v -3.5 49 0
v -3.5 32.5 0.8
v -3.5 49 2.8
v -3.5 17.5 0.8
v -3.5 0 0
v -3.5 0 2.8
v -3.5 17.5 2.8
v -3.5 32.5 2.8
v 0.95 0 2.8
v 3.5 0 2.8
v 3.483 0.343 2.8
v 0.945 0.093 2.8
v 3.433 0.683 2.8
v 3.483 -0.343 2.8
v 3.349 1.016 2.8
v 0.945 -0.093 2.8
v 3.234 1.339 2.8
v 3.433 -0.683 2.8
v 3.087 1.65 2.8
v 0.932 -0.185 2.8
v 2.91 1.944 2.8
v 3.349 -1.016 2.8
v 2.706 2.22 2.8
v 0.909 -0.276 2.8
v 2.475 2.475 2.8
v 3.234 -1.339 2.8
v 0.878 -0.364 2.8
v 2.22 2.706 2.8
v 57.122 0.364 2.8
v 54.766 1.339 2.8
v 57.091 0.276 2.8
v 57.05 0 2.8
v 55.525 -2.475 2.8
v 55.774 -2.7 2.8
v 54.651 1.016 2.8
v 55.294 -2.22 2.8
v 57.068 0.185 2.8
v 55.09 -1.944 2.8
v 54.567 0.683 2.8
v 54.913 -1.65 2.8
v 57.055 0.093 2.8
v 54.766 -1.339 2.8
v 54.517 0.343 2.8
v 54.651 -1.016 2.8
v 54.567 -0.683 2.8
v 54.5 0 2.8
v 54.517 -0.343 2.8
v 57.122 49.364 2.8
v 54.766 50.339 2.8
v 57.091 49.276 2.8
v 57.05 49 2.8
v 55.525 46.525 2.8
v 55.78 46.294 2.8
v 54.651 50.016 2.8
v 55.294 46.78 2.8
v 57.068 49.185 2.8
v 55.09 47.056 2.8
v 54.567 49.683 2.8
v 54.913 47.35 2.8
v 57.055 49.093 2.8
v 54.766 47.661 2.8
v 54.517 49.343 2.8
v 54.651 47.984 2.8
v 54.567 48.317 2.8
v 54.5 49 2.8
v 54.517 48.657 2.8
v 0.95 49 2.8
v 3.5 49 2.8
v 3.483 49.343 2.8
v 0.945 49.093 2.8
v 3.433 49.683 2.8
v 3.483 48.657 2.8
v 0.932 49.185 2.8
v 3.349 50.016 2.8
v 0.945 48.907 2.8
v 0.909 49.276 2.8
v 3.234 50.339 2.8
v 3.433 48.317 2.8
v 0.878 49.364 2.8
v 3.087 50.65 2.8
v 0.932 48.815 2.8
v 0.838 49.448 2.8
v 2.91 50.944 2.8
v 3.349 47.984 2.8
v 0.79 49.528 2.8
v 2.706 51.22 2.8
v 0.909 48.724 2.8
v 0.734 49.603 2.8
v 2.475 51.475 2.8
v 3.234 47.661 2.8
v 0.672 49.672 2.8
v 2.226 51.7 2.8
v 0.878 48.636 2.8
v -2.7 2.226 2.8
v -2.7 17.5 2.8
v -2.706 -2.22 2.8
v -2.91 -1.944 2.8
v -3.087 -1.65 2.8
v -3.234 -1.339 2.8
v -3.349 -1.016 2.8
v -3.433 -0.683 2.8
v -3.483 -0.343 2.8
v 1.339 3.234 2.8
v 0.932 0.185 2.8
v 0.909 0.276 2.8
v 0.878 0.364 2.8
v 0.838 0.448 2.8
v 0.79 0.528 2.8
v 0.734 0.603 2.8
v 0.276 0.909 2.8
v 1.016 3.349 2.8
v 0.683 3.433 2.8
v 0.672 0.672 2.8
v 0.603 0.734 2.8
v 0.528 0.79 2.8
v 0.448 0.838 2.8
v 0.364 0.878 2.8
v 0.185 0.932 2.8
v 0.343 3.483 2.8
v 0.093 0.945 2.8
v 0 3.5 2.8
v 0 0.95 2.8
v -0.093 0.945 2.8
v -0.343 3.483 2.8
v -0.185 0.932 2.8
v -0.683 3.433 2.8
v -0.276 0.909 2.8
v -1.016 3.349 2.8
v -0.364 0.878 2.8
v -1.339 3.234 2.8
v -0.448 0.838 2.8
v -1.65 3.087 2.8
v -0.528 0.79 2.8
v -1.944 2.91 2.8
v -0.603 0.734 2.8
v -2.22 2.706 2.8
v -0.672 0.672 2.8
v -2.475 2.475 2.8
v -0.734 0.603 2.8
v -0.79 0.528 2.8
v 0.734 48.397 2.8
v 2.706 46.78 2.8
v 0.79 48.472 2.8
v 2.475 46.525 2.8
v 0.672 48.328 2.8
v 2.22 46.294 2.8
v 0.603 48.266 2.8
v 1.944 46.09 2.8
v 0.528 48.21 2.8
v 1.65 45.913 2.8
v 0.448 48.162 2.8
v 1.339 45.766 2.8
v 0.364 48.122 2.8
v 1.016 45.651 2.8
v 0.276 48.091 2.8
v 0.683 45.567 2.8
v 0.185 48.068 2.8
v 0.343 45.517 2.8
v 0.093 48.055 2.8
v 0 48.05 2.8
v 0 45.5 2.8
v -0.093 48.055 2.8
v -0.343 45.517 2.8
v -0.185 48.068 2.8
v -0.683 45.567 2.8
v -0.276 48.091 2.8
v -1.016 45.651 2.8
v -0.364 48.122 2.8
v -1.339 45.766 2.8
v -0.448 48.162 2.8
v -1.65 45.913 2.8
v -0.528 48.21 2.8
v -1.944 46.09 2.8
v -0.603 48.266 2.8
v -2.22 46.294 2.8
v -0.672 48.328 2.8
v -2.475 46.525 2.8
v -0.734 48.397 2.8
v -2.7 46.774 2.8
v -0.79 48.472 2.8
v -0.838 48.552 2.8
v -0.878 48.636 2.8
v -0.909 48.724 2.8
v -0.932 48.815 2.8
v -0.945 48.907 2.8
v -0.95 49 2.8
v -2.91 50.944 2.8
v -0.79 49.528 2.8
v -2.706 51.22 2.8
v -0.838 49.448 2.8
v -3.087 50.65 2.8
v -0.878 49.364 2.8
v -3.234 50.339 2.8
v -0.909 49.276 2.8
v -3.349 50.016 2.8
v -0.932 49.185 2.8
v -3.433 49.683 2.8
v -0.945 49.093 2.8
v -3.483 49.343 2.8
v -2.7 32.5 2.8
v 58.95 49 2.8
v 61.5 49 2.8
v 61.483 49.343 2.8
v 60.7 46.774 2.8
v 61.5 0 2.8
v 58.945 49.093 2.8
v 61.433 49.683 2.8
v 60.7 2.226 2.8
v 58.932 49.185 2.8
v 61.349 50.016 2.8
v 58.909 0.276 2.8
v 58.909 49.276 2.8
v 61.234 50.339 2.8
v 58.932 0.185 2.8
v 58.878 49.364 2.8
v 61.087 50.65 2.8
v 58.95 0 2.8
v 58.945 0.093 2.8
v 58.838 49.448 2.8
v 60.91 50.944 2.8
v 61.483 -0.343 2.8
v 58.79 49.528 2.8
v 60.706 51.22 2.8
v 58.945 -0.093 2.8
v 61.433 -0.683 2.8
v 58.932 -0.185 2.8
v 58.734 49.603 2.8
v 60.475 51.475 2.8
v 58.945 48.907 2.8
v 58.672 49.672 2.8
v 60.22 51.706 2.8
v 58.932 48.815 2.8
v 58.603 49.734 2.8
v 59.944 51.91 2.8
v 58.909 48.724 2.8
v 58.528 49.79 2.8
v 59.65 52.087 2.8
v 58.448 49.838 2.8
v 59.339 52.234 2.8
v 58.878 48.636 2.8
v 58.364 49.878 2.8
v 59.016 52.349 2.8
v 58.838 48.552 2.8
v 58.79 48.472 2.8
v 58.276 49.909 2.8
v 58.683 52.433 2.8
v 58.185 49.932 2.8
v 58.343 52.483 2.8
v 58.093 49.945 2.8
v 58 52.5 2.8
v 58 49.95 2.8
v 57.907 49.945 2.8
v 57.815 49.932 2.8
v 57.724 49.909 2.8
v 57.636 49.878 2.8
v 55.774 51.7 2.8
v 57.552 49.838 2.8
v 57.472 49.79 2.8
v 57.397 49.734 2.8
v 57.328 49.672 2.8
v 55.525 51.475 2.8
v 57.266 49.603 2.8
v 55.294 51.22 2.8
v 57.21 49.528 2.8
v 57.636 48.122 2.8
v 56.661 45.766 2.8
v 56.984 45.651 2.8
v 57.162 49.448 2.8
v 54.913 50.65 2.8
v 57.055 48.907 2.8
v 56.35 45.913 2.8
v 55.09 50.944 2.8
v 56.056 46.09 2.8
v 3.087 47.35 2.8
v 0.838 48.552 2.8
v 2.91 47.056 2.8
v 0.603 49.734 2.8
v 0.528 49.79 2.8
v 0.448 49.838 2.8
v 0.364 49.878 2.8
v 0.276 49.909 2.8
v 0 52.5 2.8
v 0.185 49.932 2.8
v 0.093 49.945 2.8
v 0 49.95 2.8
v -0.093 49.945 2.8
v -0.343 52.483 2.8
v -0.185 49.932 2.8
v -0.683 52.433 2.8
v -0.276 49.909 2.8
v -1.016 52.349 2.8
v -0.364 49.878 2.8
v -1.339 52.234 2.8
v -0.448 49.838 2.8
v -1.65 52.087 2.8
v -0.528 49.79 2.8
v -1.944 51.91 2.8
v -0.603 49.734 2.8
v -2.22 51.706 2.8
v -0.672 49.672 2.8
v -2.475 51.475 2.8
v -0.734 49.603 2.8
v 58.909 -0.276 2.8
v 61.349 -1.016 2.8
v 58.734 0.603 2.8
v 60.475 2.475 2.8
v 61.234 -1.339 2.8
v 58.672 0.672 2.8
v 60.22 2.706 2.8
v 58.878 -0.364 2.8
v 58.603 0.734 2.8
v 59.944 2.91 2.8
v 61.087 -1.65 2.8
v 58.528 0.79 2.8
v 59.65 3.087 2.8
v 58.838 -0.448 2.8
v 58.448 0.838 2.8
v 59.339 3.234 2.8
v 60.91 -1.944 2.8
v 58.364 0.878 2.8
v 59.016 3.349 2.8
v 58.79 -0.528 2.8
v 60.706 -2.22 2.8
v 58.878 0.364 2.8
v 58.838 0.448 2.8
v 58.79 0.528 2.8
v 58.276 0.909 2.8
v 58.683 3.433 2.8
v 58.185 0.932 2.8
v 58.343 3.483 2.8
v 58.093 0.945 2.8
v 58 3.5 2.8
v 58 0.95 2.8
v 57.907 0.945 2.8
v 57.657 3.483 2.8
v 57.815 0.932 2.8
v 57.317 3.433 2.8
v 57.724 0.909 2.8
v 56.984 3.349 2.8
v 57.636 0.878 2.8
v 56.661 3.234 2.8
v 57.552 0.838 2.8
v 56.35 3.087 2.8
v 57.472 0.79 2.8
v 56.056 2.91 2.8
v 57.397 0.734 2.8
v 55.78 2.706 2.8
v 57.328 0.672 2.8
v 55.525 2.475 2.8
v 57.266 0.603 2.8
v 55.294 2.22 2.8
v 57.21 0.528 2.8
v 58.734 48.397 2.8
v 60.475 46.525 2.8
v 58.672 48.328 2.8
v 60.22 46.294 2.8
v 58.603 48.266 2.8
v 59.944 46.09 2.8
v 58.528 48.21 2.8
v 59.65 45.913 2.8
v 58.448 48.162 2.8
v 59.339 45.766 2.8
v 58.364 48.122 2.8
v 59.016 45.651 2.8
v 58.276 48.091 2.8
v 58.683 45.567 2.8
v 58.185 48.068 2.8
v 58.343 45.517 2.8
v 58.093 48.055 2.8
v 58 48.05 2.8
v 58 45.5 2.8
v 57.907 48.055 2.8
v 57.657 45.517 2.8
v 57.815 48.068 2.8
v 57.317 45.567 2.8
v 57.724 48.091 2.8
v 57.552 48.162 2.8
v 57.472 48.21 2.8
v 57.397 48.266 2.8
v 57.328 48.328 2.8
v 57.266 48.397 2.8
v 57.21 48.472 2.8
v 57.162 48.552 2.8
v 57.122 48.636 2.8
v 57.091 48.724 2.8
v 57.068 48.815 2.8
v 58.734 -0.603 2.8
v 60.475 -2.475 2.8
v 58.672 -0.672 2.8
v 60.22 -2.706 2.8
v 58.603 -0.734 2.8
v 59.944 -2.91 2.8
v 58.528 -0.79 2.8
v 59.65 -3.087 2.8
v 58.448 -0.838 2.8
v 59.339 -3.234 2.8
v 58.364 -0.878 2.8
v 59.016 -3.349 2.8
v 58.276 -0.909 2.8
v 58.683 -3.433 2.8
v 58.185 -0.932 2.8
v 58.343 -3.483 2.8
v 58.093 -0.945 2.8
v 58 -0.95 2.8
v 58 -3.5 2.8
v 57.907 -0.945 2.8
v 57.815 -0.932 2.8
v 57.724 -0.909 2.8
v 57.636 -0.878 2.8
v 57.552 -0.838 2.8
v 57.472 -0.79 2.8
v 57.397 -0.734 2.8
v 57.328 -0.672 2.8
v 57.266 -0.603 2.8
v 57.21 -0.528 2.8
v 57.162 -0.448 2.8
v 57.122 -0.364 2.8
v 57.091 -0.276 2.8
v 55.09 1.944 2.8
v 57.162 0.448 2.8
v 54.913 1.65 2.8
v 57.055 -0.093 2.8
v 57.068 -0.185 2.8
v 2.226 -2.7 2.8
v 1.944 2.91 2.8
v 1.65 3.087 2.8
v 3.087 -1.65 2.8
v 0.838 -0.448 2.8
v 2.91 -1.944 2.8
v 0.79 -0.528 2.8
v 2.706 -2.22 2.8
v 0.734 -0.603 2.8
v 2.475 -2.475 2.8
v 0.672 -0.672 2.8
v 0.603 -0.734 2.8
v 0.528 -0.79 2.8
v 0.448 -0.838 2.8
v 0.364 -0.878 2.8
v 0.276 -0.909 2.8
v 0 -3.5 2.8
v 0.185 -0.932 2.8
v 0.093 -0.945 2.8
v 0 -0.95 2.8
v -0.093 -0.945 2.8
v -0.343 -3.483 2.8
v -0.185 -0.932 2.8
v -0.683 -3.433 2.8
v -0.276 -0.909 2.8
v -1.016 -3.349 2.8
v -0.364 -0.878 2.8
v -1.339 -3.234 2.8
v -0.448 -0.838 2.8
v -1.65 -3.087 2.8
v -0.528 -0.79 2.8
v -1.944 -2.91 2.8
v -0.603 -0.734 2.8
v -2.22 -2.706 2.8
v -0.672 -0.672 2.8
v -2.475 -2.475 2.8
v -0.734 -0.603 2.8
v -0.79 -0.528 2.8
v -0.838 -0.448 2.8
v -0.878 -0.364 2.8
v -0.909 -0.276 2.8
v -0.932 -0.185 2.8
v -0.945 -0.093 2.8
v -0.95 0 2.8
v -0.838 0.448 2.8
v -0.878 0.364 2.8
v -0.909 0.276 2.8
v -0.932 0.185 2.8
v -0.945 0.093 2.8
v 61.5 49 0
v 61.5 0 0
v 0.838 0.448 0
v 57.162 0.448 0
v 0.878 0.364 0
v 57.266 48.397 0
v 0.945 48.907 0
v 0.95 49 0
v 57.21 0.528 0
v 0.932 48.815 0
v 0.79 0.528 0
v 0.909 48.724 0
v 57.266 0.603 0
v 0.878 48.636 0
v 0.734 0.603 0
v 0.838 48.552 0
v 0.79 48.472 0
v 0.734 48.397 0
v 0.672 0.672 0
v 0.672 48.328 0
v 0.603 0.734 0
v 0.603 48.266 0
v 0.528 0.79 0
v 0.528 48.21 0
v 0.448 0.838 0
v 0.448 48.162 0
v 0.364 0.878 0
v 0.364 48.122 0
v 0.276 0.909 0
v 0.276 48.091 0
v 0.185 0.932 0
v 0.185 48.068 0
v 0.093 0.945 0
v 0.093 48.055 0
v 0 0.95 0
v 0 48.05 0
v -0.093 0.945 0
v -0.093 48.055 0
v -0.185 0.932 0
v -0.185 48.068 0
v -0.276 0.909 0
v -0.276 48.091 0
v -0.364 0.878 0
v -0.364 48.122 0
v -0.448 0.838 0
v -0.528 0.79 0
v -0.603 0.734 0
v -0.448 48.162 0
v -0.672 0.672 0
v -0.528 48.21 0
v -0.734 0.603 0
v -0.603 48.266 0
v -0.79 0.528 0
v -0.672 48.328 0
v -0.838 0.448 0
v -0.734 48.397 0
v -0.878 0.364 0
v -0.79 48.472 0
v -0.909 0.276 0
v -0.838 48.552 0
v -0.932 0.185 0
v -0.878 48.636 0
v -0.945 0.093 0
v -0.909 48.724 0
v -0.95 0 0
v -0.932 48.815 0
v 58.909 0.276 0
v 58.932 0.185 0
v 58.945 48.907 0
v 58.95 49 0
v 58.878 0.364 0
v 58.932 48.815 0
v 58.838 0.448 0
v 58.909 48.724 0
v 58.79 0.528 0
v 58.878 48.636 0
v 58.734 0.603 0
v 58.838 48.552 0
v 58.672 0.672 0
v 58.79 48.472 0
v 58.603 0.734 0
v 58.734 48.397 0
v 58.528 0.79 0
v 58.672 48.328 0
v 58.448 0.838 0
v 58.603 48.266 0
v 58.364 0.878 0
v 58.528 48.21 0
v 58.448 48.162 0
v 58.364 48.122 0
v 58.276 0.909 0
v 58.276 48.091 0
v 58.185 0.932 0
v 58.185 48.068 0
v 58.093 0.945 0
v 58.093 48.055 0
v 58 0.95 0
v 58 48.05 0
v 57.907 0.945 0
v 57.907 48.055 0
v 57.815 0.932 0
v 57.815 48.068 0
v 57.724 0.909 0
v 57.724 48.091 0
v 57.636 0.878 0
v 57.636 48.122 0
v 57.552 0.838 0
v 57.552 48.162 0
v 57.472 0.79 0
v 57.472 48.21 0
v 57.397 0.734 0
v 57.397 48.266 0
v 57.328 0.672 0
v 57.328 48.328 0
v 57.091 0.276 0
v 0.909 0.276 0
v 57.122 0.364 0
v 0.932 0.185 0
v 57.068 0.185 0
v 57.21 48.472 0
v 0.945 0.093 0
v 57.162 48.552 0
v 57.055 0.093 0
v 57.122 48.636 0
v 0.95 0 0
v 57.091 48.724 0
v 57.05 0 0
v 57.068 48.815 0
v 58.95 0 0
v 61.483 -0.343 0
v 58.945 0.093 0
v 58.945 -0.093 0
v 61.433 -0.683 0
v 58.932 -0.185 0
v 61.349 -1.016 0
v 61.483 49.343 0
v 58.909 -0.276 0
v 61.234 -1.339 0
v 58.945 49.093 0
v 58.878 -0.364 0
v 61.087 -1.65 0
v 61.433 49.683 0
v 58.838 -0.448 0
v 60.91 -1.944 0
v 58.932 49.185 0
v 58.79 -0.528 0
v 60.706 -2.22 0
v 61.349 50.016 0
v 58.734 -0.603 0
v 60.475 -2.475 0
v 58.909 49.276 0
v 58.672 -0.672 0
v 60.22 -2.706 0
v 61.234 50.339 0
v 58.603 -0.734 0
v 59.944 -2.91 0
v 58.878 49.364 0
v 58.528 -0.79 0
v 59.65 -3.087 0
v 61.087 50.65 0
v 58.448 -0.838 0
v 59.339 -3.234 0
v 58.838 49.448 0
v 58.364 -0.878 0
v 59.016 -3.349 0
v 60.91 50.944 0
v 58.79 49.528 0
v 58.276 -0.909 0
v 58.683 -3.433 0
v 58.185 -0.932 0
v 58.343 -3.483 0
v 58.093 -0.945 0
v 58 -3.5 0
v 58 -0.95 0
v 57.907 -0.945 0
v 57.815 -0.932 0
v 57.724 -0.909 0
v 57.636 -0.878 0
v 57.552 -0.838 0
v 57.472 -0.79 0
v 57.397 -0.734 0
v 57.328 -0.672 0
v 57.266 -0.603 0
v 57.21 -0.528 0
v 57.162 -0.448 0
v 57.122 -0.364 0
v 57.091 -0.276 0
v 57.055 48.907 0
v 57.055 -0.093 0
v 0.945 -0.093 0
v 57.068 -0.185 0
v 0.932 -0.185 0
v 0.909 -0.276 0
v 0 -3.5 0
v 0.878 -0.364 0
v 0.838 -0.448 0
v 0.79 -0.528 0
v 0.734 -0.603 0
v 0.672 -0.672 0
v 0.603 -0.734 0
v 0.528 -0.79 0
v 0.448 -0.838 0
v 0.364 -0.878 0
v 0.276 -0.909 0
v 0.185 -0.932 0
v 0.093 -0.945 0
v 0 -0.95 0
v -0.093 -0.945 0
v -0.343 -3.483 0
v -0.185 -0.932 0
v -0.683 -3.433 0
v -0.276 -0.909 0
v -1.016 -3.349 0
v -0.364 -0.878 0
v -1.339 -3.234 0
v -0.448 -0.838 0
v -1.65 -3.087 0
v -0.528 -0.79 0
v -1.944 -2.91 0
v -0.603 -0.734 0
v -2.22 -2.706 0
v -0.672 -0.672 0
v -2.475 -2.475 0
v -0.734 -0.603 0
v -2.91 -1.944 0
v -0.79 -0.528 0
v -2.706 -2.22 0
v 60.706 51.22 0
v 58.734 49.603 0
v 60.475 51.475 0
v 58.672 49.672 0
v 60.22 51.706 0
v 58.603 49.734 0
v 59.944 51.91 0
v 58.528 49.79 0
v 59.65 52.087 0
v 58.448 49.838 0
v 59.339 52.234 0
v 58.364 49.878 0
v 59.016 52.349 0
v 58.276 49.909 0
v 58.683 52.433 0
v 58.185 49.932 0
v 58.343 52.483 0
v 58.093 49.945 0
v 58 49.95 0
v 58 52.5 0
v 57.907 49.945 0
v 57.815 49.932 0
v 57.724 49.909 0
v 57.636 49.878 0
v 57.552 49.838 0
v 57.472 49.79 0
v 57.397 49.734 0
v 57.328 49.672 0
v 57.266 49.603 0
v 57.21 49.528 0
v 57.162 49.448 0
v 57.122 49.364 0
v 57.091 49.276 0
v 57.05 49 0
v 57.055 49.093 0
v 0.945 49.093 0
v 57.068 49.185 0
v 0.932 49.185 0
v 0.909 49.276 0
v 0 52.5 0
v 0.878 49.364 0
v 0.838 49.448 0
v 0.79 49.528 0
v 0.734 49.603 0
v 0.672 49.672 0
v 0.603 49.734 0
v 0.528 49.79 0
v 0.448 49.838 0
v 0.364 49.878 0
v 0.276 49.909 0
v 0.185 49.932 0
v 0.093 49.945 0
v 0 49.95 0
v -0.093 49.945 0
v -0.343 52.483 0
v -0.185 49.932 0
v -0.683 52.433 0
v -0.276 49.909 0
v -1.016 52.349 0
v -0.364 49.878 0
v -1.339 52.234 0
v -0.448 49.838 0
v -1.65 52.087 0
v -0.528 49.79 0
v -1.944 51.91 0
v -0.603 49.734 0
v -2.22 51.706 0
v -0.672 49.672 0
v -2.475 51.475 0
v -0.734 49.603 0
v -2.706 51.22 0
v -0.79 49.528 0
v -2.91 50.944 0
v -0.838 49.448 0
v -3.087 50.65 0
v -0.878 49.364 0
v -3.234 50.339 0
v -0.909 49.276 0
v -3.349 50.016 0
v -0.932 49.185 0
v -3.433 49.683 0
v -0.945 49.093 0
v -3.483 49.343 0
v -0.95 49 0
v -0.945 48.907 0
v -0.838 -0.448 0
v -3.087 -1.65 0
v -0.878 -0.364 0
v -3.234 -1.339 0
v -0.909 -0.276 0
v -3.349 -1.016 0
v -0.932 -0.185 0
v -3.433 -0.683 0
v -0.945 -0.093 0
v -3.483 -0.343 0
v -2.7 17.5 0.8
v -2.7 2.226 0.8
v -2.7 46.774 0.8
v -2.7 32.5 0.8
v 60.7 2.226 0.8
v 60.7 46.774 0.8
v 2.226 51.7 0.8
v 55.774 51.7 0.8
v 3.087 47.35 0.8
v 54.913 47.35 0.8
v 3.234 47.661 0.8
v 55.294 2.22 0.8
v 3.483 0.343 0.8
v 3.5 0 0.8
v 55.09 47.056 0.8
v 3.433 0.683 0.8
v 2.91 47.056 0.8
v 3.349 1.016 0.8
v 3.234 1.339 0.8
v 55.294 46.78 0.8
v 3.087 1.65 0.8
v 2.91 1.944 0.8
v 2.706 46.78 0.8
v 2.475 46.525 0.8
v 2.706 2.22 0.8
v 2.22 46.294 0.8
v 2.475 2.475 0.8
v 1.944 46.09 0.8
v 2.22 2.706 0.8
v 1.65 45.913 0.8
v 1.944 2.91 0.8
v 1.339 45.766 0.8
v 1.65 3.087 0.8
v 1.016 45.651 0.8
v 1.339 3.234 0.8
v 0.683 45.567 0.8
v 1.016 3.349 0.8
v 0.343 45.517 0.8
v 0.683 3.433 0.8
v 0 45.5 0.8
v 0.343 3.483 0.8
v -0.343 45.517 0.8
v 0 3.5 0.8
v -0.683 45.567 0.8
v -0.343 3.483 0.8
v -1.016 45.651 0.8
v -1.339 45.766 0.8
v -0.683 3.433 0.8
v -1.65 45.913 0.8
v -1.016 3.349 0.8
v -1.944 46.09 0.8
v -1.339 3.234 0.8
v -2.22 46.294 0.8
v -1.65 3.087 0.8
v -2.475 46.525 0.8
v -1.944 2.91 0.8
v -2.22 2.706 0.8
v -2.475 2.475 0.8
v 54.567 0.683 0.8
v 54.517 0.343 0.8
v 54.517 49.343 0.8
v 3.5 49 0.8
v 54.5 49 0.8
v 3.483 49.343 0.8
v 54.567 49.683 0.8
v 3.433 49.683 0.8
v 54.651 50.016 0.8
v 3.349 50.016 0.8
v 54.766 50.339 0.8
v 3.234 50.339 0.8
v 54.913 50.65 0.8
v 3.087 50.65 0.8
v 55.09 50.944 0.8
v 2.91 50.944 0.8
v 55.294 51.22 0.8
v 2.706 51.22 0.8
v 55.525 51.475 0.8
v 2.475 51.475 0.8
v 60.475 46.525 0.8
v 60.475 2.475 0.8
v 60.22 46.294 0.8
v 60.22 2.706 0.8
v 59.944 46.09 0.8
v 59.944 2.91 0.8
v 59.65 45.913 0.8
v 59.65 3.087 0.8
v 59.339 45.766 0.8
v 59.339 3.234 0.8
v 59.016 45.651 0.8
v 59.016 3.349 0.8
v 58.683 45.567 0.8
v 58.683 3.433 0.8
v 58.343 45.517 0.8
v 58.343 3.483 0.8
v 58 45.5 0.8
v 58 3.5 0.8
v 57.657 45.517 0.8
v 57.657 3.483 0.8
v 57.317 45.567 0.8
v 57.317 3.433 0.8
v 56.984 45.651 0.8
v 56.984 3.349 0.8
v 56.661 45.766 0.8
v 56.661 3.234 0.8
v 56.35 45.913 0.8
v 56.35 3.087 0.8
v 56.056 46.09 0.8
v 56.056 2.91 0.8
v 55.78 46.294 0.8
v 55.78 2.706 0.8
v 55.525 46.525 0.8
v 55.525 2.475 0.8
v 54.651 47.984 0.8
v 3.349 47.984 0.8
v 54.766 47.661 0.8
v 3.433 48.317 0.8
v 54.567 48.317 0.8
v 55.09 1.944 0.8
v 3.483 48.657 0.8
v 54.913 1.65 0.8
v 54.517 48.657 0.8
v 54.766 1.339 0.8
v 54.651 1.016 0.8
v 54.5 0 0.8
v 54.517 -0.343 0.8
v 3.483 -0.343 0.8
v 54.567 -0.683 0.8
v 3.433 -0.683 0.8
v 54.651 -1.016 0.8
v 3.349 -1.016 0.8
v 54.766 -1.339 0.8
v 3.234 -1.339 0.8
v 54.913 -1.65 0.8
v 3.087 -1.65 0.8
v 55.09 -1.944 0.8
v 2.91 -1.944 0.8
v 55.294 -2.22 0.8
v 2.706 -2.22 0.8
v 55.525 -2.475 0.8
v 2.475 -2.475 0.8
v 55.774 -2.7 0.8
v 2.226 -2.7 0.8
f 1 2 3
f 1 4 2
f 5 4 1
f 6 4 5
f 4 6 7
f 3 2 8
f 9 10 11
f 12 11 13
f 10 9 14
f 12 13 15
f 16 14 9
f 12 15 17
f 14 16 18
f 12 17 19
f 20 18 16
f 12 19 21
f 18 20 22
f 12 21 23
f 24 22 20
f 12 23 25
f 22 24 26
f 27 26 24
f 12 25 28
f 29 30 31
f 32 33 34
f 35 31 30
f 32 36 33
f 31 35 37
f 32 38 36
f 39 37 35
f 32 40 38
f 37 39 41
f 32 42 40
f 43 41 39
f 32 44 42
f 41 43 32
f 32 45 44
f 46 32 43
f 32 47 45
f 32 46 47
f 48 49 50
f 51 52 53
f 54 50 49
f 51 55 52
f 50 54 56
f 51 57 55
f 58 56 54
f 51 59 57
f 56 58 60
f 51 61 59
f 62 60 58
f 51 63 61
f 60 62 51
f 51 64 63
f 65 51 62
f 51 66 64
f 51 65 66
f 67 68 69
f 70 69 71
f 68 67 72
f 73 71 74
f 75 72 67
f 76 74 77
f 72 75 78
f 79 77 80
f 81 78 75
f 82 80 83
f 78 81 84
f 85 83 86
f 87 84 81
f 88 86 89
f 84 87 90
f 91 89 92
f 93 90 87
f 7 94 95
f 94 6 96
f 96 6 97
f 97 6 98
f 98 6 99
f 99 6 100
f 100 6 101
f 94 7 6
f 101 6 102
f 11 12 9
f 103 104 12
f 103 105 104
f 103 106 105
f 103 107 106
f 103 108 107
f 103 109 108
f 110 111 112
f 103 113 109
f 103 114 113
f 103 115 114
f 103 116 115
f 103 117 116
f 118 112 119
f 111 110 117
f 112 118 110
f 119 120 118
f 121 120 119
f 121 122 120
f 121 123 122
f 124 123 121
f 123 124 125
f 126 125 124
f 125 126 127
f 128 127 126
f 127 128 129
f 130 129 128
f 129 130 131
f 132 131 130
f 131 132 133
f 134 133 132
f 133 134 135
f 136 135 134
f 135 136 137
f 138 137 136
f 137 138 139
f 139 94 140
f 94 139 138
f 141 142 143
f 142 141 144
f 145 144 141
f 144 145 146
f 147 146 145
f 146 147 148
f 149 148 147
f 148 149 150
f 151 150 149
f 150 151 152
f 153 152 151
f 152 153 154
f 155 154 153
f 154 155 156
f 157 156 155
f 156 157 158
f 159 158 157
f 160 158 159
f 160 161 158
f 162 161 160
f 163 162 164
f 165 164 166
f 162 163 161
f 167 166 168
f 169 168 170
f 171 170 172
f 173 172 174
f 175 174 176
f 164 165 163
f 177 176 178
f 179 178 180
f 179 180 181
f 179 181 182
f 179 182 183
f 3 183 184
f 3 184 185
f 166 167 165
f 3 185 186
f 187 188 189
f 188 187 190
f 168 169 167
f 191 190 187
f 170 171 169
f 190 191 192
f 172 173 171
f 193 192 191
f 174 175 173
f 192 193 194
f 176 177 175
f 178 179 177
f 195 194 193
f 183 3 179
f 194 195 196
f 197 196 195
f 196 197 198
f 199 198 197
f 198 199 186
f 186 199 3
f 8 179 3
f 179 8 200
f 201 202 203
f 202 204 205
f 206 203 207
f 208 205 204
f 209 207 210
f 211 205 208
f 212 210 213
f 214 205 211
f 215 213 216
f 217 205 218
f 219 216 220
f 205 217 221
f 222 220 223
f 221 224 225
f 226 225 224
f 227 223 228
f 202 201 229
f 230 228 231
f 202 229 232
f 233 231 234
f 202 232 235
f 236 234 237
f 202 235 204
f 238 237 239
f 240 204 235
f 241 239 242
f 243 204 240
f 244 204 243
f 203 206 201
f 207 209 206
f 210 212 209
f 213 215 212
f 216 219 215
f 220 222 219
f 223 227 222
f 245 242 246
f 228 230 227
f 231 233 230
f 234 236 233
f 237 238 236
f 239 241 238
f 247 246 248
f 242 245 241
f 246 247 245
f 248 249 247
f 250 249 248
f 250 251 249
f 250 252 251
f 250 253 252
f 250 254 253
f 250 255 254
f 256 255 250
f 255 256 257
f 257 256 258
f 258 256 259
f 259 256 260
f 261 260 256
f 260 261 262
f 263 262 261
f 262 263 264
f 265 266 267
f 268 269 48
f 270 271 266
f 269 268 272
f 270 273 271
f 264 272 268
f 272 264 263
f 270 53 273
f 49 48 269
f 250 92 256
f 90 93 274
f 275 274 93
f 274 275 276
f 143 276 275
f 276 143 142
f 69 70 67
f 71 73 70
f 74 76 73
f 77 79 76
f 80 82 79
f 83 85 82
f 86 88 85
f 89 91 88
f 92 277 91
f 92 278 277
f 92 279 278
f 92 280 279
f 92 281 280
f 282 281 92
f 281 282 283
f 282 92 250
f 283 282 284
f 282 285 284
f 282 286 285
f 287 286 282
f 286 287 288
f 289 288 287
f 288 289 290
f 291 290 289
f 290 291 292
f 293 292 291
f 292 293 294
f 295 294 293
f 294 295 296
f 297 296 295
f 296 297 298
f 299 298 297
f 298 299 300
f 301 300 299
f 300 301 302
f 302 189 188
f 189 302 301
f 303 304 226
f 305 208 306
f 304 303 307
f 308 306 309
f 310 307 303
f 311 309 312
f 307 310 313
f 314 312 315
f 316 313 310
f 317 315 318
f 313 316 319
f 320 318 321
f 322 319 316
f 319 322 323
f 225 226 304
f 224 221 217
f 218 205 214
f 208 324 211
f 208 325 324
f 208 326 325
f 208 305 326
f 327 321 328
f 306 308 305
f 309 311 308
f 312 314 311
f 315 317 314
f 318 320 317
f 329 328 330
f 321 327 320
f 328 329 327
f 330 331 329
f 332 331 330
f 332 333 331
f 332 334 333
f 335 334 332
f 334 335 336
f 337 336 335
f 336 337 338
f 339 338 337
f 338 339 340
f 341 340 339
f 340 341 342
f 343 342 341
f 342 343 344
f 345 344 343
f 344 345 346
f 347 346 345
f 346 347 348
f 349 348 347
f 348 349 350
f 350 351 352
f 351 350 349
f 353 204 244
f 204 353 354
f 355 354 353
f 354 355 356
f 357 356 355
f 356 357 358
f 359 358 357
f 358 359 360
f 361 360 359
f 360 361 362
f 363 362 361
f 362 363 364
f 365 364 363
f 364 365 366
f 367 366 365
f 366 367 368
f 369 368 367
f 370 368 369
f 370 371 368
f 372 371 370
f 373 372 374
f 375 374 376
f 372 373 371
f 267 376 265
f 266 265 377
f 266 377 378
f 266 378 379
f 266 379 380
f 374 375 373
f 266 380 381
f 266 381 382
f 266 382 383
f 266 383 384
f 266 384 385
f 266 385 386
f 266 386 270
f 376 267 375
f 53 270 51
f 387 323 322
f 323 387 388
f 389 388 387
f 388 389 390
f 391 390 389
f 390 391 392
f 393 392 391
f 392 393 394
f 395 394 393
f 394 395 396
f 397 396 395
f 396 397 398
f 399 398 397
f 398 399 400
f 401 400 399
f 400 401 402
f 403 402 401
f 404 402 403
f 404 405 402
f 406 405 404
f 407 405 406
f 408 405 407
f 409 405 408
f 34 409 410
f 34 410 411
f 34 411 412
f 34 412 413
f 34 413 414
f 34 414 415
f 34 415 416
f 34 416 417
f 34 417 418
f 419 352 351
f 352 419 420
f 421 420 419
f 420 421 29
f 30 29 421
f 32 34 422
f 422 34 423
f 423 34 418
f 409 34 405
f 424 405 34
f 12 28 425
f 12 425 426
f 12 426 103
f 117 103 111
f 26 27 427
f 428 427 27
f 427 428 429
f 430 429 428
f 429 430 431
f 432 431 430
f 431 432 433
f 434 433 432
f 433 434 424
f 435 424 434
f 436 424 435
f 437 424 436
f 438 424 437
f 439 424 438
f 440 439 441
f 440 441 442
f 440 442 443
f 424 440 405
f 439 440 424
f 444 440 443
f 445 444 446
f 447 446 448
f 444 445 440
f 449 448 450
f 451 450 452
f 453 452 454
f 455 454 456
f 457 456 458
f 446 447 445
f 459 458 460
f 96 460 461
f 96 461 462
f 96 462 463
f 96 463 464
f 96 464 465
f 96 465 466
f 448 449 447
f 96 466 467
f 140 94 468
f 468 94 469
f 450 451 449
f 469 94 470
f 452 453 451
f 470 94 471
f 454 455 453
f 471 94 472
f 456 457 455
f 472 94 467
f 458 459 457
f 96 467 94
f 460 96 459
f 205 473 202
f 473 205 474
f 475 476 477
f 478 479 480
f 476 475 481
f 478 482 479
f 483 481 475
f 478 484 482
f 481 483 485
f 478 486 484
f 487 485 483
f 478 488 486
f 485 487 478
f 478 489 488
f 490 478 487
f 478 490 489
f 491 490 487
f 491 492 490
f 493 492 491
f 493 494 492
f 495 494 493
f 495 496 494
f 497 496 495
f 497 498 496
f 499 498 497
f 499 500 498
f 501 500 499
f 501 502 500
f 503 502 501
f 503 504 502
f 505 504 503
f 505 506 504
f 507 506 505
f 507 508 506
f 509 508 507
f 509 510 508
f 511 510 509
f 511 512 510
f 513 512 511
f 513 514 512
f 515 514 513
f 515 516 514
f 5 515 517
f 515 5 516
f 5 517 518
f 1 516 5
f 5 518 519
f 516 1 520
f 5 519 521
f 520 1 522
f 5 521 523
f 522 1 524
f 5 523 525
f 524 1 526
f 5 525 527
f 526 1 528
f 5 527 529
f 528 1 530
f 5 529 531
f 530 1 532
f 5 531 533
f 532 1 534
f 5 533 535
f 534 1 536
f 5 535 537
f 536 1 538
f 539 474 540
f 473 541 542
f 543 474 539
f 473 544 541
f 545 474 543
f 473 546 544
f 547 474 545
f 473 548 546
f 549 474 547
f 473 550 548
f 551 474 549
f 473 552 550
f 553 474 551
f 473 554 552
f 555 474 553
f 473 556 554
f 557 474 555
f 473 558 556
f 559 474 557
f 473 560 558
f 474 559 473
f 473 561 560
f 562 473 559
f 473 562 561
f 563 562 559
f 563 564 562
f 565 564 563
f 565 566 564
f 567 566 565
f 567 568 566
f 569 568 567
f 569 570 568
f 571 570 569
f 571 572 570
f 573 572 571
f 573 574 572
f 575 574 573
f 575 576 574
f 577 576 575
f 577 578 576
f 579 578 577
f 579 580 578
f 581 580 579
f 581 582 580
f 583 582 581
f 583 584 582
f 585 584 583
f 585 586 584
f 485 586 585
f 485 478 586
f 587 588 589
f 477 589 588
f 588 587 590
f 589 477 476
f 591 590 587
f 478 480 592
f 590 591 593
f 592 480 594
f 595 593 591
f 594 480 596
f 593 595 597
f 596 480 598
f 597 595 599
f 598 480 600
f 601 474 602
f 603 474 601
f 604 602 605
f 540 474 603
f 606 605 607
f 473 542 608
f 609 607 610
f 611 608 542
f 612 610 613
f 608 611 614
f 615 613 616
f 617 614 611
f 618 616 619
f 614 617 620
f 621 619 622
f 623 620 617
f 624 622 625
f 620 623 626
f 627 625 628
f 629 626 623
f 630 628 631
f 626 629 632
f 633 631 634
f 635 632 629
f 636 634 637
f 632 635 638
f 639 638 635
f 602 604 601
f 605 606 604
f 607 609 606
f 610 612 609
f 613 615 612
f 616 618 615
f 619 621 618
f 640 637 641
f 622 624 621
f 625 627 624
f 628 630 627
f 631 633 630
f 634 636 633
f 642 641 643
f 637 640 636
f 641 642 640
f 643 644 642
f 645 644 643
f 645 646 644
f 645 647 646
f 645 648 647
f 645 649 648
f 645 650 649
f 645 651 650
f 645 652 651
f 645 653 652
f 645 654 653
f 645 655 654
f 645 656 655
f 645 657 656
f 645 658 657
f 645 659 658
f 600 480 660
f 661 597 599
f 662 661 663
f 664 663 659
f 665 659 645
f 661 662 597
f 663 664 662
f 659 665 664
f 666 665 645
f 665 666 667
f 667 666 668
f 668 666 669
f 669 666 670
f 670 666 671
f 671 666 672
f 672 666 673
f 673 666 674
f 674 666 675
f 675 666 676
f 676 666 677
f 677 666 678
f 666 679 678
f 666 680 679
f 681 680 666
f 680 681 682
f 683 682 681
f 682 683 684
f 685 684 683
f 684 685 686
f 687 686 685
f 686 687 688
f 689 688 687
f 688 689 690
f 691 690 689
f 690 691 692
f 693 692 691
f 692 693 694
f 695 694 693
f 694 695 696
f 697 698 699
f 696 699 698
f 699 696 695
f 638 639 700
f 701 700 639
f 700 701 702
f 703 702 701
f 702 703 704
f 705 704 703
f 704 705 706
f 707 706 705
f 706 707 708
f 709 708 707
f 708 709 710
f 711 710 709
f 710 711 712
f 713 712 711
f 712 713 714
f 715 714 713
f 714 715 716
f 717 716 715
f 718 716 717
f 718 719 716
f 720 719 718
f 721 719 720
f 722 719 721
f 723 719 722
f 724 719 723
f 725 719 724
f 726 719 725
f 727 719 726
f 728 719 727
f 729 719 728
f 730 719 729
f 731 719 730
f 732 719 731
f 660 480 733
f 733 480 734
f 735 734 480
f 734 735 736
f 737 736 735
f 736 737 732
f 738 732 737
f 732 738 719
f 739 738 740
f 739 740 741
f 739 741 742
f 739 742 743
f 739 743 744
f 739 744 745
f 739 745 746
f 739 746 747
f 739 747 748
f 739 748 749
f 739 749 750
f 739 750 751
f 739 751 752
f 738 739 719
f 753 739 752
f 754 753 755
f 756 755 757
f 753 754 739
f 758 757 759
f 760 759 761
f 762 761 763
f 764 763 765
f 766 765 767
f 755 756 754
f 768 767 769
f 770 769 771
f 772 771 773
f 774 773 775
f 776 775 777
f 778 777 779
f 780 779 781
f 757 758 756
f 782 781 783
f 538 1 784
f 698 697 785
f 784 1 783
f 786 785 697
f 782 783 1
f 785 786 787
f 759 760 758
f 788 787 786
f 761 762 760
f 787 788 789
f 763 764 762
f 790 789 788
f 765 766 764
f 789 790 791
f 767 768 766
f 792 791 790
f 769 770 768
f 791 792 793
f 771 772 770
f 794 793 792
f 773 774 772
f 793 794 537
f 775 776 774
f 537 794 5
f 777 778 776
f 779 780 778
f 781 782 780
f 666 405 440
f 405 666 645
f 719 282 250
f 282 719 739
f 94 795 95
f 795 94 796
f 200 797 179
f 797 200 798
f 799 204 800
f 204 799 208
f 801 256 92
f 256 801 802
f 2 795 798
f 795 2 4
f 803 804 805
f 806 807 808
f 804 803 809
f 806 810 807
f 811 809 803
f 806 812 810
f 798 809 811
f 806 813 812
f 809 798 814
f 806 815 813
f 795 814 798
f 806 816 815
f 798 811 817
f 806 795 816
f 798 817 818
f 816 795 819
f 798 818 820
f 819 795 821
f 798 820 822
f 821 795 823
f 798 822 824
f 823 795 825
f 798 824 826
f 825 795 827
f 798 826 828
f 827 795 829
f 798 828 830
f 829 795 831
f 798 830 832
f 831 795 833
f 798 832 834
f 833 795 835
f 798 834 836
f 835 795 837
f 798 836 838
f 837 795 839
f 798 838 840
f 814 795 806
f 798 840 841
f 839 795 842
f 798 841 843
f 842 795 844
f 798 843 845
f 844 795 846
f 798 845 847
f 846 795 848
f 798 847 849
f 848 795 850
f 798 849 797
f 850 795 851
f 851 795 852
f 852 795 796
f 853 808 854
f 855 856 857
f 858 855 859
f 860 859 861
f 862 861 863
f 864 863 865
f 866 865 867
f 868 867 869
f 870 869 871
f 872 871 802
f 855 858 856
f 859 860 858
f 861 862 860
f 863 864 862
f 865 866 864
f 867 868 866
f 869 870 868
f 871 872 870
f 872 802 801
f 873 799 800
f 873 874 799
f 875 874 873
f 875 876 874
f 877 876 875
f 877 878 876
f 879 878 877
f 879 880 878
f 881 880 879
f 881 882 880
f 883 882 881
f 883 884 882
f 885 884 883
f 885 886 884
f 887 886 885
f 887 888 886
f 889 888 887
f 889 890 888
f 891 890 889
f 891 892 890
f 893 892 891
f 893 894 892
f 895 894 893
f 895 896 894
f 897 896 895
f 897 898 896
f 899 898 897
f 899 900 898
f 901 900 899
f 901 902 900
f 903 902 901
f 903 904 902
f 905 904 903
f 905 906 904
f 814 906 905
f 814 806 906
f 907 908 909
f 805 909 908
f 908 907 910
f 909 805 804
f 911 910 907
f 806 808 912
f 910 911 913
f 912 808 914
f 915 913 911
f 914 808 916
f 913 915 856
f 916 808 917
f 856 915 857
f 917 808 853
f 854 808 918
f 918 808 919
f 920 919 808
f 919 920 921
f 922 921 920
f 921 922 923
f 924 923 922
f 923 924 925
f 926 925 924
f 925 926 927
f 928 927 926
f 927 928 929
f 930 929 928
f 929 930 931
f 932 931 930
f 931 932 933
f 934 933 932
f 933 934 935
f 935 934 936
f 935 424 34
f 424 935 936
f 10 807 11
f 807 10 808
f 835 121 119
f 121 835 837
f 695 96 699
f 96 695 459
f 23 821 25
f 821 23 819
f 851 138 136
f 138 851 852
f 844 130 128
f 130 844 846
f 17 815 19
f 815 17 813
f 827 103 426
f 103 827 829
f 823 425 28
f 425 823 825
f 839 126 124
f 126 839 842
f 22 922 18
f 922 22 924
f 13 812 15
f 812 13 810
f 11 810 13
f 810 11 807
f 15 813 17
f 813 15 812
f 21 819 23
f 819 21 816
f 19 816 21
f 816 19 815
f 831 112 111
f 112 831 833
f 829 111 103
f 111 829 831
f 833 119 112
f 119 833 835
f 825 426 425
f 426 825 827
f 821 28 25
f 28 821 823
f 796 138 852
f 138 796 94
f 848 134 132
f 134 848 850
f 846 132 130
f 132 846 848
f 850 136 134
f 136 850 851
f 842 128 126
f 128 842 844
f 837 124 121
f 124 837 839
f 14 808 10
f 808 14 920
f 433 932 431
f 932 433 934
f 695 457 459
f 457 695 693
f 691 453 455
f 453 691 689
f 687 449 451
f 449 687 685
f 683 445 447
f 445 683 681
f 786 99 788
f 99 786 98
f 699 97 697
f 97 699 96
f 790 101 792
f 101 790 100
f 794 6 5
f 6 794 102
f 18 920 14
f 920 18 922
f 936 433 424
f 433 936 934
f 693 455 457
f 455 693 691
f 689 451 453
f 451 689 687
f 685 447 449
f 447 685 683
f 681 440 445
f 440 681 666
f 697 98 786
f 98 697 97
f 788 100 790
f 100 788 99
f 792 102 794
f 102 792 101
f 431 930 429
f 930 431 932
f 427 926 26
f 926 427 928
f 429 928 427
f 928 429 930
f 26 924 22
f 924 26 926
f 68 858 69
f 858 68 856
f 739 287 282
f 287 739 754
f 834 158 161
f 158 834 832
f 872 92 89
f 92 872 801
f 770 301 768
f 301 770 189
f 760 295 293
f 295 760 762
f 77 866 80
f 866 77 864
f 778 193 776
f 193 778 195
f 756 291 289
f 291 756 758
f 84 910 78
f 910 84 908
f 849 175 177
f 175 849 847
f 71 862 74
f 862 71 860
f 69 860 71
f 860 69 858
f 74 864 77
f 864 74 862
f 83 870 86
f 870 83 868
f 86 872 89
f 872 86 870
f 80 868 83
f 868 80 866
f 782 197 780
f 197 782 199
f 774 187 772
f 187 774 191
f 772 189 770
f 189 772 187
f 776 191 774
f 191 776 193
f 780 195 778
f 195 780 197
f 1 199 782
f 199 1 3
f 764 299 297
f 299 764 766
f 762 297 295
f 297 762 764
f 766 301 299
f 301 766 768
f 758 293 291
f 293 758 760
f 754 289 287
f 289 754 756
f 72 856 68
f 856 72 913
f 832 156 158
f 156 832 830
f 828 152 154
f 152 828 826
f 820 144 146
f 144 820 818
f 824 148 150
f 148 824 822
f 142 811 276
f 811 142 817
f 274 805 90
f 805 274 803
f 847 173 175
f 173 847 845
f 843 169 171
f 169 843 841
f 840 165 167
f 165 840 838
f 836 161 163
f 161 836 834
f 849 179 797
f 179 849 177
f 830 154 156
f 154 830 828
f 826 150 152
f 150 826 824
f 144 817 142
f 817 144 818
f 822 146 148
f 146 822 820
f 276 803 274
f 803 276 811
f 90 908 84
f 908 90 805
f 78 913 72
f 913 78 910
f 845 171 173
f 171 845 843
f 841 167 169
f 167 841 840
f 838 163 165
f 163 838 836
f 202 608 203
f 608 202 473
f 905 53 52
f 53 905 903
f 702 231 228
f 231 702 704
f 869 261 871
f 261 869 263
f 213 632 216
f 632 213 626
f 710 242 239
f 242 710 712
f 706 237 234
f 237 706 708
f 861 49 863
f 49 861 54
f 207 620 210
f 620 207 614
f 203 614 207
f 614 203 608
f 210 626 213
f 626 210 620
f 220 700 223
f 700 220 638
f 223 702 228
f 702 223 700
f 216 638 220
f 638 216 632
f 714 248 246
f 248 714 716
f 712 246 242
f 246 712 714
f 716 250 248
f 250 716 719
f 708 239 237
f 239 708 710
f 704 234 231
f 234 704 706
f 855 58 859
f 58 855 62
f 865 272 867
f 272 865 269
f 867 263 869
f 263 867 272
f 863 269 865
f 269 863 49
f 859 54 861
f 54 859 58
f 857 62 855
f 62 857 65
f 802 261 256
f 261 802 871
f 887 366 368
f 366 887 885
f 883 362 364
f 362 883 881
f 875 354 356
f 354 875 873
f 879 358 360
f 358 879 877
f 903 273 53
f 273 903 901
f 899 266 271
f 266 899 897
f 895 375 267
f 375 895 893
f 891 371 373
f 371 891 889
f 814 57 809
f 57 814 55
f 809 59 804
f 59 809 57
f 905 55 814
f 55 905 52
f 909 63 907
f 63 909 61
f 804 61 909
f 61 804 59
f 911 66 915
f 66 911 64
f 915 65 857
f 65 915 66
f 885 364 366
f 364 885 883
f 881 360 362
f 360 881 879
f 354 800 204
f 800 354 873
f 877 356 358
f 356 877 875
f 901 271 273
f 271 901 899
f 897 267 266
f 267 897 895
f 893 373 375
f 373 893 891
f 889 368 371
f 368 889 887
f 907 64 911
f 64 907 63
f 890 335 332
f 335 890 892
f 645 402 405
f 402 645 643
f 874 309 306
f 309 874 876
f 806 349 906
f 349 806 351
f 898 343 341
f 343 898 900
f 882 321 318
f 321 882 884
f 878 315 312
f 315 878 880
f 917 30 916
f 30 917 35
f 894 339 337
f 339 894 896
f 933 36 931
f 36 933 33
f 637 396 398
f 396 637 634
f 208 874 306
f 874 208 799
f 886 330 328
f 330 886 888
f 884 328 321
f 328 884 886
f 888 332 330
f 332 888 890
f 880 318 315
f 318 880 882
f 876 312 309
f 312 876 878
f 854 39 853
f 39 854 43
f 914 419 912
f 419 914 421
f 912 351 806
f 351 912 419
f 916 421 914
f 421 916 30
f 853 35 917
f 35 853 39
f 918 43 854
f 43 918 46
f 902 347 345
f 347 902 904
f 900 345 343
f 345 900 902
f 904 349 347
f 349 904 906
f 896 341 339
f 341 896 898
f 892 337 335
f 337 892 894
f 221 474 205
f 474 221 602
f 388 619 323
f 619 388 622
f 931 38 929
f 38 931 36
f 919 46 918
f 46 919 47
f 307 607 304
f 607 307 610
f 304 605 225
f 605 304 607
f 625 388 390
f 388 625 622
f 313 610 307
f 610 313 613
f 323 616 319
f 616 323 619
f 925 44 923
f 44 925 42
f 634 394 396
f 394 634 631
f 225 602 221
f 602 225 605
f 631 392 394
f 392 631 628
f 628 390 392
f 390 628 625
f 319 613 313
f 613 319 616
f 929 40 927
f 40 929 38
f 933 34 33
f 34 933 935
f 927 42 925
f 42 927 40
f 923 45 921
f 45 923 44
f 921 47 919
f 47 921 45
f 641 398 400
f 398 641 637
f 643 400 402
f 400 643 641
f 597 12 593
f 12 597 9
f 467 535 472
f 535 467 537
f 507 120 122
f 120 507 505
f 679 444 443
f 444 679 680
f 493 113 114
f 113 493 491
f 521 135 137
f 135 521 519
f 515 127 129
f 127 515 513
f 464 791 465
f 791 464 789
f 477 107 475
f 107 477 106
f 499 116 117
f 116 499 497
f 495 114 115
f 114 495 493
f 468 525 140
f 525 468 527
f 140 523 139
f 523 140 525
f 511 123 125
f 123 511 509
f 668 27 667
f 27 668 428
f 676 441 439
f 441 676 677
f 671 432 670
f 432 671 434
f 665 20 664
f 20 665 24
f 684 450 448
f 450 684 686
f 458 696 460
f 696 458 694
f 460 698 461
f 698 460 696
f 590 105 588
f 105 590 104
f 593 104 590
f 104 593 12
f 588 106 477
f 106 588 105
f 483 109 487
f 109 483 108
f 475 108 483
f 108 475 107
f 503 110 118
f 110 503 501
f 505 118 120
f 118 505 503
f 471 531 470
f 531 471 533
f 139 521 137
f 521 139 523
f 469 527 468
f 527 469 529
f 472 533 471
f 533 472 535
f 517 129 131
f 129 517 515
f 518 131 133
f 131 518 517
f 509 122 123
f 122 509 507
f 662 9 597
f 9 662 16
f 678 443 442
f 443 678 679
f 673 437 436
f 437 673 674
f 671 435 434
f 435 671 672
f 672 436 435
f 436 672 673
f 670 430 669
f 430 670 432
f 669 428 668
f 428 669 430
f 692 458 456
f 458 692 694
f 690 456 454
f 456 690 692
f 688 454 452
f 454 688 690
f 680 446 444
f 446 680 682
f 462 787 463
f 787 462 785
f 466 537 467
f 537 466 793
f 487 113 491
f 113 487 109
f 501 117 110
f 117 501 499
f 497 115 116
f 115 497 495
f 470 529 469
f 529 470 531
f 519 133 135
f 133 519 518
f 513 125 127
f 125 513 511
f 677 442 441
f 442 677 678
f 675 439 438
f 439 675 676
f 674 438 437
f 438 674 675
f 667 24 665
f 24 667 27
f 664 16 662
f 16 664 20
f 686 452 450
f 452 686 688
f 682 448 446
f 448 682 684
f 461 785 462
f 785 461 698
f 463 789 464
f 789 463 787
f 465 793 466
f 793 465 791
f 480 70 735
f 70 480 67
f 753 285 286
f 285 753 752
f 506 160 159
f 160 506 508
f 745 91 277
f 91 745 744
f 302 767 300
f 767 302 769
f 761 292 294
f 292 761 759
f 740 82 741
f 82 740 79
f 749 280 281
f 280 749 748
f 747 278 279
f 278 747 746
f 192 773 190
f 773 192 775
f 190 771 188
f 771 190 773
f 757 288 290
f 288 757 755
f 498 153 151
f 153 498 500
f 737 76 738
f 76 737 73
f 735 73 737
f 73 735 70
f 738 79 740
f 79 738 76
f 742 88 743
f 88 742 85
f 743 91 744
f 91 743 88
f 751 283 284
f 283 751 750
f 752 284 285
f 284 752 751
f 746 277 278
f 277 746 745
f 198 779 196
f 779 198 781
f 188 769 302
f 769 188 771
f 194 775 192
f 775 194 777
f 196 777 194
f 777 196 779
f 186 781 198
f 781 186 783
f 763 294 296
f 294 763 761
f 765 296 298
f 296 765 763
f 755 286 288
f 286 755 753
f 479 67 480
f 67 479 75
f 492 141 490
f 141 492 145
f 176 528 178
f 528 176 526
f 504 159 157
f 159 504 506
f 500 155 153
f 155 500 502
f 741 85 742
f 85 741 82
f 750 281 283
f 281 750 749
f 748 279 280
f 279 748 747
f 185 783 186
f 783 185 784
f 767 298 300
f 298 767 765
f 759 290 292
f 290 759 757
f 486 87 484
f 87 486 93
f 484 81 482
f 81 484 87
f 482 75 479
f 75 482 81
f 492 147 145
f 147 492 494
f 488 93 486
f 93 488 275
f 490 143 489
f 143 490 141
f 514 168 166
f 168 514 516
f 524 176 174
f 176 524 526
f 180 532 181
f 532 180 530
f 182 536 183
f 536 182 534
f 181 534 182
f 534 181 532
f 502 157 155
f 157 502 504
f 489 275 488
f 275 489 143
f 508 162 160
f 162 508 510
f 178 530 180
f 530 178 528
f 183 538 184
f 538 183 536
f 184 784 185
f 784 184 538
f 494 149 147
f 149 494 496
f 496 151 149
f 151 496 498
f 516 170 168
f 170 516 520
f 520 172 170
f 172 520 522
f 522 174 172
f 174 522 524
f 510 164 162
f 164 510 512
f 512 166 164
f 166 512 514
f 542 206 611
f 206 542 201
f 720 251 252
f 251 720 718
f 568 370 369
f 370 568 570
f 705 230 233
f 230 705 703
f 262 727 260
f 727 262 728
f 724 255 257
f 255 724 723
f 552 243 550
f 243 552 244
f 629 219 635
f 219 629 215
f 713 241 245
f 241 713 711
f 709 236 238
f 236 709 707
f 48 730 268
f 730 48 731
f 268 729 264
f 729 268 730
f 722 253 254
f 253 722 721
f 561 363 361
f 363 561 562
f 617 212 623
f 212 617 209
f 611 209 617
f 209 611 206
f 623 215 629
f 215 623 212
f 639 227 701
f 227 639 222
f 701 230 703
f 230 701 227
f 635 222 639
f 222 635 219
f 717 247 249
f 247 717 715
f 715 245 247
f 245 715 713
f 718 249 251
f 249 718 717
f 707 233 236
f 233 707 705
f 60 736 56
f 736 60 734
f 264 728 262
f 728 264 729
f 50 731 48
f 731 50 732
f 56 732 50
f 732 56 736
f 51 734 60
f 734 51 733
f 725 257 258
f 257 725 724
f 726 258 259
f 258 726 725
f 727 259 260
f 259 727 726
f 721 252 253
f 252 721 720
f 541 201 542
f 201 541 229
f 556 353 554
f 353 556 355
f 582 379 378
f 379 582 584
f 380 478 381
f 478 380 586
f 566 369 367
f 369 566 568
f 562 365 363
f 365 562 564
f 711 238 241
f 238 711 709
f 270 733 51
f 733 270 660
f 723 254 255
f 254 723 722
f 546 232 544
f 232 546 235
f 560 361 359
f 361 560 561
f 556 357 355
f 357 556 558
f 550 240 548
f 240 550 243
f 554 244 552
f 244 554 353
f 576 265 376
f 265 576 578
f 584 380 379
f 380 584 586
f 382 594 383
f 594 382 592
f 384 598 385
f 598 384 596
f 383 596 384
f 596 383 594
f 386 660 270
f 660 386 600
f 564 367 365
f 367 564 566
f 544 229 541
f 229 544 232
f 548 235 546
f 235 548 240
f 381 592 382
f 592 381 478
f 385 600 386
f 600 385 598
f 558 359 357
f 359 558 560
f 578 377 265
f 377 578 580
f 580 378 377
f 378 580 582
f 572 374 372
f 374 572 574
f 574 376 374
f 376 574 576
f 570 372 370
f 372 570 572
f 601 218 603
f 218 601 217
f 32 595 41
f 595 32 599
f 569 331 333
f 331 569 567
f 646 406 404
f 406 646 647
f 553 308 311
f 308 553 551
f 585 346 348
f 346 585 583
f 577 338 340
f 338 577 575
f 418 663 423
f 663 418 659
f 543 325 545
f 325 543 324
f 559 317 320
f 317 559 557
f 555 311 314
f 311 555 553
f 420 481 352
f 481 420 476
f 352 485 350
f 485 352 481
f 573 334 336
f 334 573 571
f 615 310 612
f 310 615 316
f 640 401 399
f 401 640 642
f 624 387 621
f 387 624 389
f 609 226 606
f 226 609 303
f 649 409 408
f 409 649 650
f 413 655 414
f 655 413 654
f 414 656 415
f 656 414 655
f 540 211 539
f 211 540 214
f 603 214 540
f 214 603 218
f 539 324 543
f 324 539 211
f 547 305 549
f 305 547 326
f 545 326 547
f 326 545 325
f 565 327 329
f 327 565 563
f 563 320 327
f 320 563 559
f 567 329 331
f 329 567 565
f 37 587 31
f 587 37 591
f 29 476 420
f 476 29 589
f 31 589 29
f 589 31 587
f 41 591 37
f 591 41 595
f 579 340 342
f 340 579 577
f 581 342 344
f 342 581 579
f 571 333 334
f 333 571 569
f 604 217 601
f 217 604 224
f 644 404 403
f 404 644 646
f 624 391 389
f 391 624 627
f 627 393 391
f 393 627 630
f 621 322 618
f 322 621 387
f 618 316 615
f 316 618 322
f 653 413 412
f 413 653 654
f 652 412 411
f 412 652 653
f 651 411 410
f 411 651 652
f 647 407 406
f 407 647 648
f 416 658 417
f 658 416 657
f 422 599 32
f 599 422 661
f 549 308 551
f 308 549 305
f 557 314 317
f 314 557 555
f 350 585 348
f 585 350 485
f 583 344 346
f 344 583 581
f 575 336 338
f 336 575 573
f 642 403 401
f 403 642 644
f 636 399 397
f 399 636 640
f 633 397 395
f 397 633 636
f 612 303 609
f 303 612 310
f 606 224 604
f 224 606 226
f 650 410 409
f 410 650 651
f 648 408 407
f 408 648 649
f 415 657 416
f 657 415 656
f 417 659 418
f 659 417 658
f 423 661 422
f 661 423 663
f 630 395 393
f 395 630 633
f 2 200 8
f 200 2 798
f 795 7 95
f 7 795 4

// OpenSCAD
thickness=0.8;
radius=3.5;
drill=0.95;
height=49;
width=58;
depth=thickness+2;

difference()
{
    union()
    {
        //create walls
        difference()
        {
            union()
            {
            translate([-radius,0,0])
                cube([width+2*radius,height,depth]);
            translate([0,-radius,0])
                cube([width,height+2*radius,depth]);
            }
            translate([-radius+thickness,-radius+thickness,thickness])
                cube([width+2*(radius-thickness),height+2*(radius-thickness),depth]);
        }
        
        //add the mounting brackets
        cylinder(depth,radius,radius,$fn = 64);
        translate([0,height,0])
            cylinder(depth,radius,radius,$fn = 64);
        translate([width,height,0])
            cylinder(depth,radius,radius,$fn = 64);
        translate([width,0,0])
            cylinder(depth,radius,radius,$fn = 64);
    }

    //drill holes
    cylinder(depth,drill,drill,$fn = 64);
    translate([0,height,0])
        cylinder(depth,drill,drill,$fn = 64);
    translate([width,height,0])
        cylinder(depth,drill,drill,$fn = 64);
    translate([width,0,0])
        cylinder(depth,drill,drill,$fn = 64);
    
    //add slot for microsd
    translate([-radius,21-radius,depth-2])
        cube([16,15,2]);
}
